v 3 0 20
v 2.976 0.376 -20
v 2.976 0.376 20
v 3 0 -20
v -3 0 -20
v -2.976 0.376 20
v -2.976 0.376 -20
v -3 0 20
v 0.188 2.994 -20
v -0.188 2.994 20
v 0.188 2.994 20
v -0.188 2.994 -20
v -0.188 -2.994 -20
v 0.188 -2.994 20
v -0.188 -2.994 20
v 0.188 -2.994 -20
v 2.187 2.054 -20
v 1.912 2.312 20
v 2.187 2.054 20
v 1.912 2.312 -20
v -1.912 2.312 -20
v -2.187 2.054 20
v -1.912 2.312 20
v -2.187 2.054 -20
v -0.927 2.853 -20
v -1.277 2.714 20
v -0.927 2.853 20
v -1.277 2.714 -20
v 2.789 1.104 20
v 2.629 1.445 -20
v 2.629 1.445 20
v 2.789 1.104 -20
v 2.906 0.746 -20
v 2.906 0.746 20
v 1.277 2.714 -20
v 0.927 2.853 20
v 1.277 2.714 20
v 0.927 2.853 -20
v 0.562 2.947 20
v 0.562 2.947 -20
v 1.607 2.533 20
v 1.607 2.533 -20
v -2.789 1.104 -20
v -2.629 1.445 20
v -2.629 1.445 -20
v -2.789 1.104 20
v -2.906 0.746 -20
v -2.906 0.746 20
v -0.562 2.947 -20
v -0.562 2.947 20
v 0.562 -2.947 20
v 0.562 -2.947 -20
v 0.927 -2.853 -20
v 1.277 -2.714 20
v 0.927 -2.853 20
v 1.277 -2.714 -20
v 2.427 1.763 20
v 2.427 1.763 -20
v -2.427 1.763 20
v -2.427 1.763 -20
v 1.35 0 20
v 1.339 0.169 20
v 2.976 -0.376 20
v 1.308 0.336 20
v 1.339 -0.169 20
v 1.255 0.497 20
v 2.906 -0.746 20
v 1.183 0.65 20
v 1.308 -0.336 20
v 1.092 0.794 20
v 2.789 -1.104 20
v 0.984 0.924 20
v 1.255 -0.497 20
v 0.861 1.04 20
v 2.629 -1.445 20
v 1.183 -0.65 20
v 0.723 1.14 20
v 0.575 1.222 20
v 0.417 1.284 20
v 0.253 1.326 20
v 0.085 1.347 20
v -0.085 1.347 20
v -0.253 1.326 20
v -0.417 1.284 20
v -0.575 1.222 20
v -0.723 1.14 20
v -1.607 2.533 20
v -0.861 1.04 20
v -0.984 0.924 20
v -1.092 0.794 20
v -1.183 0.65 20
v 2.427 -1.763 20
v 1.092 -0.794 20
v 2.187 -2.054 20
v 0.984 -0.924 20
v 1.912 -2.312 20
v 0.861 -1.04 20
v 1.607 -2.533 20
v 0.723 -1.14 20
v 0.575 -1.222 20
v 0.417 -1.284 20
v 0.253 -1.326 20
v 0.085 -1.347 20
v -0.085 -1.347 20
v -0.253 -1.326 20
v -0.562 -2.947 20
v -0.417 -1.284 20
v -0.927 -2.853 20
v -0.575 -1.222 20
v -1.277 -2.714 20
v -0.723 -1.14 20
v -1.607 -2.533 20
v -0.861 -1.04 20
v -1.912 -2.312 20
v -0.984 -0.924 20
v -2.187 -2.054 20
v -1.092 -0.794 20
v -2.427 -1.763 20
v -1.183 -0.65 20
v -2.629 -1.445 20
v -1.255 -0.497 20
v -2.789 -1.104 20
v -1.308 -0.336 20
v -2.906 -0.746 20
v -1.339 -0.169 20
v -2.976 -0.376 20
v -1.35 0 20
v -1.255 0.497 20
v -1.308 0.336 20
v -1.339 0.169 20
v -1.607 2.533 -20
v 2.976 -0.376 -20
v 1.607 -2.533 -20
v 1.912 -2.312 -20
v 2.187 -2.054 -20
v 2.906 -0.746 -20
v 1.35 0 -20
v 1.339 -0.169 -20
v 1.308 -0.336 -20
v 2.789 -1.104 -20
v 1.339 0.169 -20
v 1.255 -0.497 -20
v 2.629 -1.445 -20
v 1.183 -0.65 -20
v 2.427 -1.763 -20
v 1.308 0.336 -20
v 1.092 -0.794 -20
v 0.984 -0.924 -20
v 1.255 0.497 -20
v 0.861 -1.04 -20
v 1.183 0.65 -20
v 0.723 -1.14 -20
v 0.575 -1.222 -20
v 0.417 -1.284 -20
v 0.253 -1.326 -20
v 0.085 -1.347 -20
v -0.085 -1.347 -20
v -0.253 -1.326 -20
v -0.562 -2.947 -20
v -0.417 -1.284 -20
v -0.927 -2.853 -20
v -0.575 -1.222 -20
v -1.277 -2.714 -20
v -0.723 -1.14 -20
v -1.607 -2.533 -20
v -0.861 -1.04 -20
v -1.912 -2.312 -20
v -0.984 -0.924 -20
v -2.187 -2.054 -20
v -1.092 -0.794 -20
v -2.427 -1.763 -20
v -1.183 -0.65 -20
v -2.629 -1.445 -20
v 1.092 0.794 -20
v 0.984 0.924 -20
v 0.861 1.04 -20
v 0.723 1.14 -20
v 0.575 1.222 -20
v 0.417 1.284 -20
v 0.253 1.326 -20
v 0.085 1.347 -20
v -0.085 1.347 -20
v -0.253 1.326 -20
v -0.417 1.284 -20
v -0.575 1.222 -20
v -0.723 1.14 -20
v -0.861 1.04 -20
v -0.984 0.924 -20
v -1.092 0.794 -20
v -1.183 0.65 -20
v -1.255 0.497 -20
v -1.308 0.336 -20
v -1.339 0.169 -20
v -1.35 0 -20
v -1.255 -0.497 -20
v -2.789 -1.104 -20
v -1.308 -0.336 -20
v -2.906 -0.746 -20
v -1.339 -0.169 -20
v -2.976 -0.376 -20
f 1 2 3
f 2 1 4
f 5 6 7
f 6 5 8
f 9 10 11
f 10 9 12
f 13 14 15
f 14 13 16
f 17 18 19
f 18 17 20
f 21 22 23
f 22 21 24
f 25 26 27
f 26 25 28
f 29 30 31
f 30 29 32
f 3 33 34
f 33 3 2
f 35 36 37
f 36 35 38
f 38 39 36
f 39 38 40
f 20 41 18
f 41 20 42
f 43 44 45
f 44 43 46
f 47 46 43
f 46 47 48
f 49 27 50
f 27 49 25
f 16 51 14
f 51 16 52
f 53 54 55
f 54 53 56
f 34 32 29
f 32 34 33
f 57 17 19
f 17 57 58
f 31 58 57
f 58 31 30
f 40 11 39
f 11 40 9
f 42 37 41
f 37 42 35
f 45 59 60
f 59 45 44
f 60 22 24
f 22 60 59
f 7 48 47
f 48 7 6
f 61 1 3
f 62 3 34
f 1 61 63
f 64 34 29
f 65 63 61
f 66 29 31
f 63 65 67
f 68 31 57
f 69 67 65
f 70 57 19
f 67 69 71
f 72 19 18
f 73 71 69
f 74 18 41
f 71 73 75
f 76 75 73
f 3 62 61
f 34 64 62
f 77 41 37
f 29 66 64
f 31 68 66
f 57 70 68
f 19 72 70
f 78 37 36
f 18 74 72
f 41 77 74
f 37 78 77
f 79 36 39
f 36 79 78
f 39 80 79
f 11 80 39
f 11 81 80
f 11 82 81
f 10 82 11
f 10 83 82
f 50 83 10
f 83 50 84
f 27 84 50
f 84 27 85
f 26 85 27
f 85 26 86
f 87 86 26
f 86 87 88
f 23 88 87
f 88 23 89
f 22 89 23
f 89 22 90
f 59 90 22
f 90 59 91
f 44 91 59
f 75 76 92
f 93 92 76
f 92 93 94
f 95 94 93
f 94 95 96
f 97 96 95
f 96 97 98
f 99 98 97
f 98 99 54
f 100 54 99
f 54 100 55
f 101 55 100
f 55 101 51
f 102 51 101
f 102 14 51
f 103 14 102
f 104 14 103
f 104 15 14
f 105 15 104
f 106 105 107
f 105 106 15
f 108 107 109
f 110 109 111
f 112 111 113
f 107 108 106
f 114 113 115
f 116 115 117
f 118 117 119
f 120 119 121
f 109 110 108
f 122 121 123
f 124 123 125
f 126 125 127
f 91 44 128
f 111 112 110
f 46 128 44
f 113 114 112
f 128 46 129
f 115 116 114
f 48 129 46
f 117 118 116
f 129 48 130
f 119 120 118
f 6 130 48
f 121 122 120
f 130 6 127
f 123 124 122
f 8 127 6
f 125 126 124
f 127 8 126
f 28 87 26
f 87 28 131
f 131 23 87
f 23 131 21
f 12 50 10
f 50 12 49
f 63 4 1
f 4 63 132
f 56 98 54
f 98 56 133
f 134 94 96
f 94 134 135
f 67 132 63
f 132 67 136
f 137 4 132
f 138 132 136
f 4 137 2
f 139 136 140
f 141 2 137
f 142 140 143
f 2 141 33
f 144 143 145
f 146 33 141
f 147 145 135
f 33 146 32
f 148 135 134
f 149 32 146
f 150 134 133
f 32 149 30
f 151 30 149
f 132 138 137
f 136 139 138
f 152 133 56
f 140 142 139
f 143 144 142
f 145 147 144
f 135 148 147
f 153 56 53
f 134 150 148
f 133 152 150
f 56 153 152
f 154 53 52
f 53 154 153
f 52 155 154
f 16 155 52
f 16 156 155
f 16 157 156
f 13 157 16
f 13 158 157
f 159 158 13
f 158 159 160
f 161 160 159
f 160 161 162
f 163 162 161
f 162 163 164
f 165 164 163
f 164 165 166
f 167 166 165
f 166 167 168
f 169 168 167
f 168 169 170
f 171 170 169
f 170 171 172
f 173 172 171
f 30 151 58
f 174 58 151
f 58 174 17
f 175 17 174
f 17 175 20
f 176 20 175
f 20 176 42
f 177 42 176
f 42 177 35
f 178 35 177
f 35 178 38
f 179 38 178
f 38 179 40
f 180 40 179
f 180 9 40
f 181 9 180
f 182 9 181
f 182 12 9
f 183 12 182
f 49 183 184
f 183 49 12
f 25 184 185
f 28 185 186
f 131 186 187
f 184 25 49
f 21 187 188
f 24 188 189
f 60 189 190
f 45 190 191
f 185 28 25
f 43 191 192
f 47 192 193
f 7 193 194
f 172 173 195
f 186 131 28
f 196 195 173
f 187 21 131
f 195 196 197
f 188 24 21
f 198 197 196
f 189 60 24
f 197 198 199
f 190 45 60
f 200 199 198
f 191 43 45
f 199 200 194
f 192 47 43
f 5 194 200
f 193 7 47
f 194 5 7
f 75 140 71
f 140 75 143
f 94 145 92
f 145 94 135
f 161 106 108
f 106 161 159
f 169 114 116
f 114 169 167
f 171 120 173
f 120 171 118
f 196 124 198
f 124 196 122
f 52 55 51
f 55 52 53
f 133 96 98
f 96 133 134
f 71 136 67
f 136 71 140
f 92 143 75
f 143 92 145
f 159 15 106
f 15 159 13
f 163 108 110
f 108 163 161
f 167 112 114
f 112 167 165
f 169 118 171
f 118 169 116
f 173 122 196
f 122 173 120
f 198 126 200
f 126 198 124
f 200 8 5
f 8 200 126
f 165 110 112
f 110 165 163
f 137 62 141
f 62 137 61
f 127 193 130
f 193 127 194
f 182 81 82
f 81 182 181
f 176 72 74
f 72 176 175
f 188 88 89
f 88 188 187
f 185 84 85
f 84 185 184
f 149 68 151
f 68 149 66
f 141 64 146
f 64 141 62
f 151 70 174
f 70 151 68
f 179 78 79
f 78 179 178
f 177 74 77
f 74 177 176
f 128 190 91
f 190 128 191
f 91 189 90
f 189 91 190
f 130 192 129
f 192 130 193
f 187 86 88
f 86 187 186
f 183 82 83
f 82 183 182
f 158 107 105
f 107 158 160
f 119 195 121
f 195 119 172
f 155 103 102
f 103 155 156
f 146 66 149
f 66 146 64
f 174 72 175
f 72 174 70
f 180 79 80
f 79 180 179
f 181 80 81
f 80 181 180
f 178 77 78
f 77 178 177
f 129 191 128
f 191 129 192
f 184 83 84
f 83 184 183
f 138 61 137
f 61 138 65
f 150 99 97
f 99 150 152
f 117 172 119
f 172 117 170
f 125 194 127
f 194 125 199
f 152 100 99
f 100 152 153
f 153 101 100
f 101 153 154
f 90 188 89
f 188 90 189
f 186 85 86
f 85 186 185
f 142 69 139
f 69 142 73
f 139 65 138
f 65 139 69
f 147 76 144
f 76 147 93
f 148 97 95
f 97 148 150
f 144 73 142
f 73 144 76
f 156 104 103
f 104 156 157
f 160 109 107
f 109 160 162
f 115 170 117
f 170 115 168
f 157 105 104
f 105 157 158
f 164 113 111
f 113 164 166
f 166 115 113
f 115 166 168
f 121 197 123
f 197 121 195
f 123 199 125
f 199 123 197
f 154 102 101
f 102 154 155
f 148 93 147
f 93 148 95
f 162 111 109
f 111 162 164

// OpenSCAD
$fn = 50;


difference() {
	union() {
		translate(v = [0, 0, -20.0000000000]) {
			cylinder(h = 40, r = 3.0000000000);
		}
	}
	union() {
		translate(v = [0, 0, -100.0000000000]) {
			cylinder(h = 200, r = 1.3500000000);
		}
	}
}
